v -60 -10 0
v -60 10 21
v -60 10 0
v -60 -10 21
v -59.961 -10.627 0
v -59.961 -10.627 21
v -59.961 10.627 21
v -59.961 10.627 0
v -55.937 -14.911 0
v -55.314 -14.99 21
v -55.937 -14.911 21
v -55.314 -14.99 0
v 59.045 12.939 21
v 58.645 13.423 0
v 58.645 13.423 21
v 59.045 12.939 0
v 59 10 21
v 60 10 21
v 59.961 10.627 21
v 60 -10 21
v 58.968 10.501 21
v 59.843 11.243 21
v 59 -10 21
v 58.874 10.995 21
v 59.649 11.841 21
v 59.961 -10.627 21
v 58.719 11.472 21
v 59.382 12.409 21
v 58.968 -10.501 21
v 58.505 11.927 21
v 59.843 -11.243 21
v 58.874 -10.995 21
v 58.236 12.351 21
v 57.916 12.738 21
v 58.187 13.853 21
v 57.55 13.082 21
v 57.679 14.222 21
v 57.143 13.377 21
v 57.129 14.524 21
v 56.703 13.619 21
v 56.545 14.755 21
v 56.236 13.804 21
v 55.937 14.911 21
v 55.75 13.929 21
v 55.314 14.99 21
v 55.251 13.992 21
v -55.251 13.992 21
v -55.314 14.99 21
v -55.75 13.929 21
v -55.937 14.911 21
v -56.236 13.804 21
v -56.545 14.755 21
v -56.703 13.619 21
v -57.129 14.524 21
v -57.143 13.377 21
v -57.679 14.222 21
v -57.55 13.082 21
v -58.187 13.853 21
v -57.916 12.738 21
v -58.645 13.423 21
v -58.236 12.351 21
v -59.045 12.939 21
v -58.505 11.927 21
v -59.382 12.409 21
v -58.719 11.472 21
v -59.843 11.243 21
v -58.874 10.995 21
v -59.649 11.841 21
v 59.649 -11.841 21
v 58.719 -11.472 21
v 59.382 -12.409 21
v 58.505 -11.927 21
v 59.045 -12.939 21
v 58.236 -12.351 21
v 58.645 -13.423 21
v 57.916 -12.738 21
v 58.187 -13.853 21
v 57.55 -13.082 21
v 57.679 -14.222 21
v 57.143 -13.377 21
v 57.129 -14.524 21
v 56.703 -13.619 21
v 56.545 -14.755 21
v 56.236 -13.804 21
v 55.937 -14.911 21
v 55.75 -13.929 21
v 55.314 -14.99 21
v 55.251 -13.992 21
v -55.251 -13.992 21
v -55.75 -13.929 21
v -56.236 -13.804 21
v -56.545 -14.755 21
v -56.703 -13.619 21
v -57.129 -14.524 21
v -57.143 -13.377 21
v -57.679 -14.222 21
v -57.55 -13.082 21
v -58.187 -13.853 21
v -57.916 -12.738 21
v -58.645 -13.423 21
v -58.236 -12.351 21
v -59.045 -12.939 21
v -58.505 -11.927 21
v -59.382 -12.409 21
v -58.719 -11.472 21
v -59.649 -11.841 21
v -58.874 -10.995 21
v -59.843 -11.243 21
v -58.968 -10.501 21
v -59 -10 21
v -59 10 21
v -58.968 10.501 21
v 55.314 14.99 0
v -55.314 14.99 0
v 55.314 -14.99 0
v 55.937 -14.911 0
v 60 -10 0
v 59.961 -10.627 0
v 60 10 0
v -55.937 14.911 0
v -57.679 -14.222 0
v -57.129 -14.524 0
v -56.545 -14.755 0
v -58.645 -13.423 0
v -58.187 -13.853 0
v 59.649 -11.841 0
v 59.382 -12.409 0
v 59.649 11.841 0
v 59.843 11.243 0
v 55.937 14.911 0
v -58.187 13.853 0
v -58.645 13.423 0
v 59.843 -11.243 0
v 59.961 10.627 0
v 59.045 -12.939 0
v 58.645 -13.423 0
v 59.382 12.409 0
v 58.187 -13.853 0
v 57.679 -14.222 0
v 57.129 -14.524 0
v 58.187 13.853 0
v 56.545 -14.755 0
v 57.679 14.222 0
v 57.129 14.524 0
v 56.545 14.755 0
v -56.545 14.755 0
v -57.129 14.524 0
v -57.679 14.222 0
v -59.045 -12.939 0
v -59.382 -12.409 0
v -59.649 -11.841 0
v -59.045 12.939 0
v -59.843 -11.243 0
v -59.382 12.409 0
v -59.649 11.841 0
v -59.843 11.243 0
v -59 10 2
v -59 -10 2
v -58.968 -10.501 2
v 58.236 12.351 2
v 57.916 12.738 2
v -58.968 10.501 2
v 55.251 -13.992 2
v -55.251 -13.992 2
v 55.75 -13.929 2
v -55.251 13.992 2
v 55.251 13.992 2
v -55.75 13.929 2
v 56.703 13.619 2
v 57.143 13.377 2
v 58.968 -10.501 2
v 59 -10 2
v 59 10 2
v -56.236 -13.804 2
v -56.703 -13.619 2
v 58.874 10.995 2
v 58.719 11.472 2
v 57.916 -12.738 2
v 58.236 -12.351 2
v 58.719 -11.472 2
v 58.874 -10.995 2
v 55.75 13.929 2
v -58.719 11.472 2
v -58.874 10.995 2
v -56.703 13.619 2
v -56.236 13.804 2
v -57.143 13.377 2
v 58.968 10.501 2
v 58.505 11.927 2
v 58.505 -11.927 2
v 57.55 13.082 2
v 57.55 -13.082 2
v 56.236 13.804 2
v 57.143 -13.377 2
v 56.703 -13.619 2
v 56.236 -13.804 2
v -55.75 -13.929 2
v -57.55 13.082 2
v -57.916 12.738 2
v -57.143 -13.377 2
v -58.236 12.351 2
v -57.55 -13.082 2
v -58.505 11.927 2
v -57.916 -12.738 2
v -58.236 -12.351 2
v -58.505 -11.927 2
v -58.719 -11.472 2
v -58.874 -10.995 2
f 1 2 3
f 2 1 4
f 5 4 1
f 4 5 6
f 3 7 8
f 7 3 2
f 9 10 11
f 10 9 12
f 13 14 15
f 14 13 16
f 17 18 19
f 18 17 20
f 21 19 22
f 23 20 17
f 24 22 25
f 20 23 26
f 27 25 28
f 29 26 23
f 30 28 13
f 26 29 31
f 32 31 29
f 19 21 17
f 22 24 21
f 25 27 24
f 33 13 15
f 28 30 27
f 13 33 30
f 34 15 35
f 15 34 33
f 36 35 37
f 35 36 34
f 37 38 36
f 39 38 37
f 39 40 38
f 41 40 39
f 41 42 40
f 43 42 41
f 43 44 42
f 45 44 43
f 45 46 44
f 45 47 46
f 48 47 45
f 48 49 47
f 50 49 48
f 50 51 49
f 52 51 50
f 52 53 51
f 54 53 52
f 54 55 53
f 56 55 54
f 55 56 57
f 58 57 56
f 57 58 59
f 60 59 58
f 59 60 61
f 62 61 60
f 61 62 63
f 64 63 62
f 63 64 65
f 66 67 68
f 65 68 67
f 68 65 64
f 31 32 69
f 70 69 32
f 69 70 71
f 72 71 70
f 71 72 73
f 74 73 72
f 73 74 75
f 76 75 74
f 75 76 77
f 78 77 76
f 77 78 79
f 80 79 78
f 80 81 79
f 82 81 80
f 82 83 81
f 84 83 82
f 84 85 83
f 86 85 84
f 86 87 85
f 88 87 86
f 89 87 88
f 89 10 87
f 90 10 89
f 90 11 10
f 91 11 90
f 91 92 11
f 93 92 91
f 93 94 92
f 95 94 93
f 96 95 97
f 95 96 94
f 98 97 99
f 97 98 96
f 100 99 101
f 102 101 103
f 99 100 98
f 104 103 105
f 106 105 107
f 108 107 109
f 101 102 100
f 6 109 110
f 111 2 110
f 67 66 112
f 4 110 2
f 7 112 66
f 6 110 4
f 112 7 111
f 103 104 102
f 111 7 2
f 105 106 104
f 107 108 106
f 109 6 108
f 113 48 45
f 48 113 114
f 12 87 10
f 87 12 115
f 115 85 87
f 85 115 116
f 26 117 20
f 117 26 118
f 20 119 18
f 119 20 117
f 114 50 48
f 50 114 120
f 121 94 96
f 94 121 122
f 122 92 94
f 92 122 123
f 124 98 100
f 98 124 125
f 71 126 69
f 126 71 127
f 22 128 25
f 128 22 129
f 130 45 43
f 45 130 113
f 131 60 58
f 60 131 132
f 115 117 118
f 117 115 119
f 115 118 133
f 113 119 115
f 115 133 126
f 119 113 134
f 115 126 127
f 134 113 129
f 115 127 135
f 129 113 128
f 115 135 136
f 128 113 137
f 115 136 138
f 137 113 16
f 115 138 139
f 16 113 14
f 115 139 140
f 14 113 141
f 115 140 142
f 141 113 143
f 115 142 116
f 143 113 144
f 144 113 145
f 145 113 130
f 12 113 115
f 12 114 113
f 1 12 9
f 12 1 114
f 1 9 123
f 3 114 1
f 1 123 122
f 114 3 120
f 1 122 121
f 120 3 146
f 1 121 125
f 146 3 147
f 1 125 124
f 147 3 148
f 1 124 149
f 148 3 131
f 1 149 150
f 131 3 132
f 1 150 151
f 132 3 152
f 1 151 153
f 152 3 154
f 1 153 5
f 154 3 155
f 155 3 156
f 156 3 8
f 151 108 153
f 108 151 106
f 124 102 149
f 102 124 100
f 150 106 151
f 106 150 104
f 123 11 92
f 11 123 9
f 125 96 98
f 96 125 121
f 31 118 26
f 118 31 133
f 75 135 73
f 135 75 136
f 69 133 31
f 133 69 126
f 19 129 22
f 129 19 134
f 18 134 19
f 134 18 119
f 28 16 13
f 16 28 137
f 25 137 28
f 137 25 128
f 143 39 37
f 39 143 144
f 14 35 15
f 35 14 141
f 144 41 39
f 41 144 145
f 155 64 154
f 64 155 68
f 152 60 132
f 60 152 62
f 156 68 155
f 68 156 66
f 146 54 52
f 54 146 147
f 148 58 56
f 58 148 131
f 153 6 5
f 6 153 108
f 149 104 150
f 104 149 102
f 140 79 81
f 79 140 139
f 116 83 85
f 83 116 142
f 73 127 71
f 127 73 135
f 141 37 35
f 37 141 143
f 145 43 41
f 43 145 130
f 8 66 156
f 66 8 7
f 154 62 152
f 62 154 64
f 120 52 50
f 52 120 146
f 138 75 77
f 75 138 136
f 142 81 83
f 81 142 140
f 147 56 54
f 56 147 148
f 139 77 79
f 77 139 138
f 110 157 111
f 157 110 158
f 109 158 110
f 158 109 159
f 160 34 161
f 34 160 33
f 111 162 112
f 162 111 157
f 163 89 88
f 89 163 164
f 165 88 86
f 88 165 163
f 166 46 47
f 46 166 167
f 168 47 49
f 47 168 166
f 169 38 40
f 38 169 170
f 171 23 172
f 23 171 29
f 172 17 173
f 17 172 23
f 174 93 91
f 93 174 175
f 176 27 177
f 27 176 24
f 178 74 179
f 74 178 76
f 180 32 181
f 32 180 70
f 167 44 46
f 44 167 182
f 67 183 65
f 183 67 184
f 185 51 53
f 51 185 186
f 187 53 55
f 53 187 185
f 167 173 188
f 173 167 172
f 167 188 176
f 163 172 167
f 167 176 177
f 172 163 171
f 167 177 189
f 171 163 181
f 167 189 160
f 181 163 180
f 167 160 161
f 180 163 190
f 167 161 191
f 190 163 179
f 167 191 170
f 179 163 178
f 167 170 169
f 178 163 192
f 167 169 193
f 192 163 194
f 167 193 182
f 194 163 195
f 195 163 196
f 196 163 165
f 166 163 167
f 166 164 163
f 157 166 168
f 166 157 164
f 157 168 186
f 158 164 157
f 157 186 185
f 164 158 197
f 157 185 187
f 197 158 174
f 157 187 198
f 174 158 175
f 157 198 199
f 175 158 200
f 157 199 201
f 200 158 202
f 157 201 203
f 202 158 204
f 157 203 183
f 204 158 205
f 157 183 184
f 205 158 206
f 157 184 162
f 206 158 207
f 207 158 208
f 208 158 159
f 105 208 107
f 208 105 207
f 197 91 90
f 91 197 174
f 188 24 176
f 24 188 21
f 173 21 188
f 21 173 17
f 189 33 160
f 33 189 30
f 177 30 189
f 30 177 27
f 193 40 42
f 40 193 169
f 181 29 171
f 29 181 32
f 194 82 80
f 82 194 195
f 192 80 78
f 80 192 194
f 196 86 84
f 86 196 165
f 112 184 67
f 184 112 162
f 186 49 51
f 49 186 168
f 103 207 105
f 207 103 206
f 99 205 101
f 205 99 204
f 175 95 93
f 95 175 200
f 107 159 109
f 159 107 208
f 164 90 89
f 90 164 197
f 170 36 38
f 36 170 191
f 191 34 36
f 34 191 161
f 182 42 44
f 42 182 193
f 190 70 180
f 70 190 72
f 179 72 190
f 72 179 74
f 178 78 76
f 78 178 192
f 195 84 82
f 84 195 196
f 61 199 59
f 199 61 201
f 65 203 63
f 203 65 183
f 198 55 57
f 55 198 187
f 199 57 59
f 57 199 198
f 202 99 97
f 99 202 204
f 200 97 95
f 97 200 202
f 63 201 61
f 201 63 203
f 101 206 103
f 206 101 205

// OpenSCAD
$fn = 50;


difference() {
	union() {
		hull() {
			translate(v = [-55.0000000000, 10.0000000000, 0]) {
				cylinder(h = 21, r = 5);
			}
			translate(v = [55.0000000000, 10.0000000000, 0]) {
				cylinder(h = 21, r = 5);
			}
			translate(v = [-55.0000000000, -10.0000000000, 0]) {
				cylinder(h = 21, r = 5);
			}
			translate(v = [55.0000000000, -10.0000000000, 0]) {
				cylinder(h = 21, r = 5);
			}
		}
	}
	union() {
		translate(v = [0, 0, 2]) {
			hull() {
				translate(v = [-55.0000000000, 10.0000000000, 0]) {
					cylinder(h = 19, r = 4);
				}
				translate(v = [55.0000000000, 10.0000000000, 0]) {
					cylinder(h = 19, r = 4);
				}
				translate(v = [-55.0000000000, -10.0000000000, 0]) {
					cylinder(h = 19, r = 4);
				}
				translate(v = [55.0000000000, -10.0000000000, 0]) {
					cylinder(h = 19, r = 4);
				}
			}
		}
	}
}
